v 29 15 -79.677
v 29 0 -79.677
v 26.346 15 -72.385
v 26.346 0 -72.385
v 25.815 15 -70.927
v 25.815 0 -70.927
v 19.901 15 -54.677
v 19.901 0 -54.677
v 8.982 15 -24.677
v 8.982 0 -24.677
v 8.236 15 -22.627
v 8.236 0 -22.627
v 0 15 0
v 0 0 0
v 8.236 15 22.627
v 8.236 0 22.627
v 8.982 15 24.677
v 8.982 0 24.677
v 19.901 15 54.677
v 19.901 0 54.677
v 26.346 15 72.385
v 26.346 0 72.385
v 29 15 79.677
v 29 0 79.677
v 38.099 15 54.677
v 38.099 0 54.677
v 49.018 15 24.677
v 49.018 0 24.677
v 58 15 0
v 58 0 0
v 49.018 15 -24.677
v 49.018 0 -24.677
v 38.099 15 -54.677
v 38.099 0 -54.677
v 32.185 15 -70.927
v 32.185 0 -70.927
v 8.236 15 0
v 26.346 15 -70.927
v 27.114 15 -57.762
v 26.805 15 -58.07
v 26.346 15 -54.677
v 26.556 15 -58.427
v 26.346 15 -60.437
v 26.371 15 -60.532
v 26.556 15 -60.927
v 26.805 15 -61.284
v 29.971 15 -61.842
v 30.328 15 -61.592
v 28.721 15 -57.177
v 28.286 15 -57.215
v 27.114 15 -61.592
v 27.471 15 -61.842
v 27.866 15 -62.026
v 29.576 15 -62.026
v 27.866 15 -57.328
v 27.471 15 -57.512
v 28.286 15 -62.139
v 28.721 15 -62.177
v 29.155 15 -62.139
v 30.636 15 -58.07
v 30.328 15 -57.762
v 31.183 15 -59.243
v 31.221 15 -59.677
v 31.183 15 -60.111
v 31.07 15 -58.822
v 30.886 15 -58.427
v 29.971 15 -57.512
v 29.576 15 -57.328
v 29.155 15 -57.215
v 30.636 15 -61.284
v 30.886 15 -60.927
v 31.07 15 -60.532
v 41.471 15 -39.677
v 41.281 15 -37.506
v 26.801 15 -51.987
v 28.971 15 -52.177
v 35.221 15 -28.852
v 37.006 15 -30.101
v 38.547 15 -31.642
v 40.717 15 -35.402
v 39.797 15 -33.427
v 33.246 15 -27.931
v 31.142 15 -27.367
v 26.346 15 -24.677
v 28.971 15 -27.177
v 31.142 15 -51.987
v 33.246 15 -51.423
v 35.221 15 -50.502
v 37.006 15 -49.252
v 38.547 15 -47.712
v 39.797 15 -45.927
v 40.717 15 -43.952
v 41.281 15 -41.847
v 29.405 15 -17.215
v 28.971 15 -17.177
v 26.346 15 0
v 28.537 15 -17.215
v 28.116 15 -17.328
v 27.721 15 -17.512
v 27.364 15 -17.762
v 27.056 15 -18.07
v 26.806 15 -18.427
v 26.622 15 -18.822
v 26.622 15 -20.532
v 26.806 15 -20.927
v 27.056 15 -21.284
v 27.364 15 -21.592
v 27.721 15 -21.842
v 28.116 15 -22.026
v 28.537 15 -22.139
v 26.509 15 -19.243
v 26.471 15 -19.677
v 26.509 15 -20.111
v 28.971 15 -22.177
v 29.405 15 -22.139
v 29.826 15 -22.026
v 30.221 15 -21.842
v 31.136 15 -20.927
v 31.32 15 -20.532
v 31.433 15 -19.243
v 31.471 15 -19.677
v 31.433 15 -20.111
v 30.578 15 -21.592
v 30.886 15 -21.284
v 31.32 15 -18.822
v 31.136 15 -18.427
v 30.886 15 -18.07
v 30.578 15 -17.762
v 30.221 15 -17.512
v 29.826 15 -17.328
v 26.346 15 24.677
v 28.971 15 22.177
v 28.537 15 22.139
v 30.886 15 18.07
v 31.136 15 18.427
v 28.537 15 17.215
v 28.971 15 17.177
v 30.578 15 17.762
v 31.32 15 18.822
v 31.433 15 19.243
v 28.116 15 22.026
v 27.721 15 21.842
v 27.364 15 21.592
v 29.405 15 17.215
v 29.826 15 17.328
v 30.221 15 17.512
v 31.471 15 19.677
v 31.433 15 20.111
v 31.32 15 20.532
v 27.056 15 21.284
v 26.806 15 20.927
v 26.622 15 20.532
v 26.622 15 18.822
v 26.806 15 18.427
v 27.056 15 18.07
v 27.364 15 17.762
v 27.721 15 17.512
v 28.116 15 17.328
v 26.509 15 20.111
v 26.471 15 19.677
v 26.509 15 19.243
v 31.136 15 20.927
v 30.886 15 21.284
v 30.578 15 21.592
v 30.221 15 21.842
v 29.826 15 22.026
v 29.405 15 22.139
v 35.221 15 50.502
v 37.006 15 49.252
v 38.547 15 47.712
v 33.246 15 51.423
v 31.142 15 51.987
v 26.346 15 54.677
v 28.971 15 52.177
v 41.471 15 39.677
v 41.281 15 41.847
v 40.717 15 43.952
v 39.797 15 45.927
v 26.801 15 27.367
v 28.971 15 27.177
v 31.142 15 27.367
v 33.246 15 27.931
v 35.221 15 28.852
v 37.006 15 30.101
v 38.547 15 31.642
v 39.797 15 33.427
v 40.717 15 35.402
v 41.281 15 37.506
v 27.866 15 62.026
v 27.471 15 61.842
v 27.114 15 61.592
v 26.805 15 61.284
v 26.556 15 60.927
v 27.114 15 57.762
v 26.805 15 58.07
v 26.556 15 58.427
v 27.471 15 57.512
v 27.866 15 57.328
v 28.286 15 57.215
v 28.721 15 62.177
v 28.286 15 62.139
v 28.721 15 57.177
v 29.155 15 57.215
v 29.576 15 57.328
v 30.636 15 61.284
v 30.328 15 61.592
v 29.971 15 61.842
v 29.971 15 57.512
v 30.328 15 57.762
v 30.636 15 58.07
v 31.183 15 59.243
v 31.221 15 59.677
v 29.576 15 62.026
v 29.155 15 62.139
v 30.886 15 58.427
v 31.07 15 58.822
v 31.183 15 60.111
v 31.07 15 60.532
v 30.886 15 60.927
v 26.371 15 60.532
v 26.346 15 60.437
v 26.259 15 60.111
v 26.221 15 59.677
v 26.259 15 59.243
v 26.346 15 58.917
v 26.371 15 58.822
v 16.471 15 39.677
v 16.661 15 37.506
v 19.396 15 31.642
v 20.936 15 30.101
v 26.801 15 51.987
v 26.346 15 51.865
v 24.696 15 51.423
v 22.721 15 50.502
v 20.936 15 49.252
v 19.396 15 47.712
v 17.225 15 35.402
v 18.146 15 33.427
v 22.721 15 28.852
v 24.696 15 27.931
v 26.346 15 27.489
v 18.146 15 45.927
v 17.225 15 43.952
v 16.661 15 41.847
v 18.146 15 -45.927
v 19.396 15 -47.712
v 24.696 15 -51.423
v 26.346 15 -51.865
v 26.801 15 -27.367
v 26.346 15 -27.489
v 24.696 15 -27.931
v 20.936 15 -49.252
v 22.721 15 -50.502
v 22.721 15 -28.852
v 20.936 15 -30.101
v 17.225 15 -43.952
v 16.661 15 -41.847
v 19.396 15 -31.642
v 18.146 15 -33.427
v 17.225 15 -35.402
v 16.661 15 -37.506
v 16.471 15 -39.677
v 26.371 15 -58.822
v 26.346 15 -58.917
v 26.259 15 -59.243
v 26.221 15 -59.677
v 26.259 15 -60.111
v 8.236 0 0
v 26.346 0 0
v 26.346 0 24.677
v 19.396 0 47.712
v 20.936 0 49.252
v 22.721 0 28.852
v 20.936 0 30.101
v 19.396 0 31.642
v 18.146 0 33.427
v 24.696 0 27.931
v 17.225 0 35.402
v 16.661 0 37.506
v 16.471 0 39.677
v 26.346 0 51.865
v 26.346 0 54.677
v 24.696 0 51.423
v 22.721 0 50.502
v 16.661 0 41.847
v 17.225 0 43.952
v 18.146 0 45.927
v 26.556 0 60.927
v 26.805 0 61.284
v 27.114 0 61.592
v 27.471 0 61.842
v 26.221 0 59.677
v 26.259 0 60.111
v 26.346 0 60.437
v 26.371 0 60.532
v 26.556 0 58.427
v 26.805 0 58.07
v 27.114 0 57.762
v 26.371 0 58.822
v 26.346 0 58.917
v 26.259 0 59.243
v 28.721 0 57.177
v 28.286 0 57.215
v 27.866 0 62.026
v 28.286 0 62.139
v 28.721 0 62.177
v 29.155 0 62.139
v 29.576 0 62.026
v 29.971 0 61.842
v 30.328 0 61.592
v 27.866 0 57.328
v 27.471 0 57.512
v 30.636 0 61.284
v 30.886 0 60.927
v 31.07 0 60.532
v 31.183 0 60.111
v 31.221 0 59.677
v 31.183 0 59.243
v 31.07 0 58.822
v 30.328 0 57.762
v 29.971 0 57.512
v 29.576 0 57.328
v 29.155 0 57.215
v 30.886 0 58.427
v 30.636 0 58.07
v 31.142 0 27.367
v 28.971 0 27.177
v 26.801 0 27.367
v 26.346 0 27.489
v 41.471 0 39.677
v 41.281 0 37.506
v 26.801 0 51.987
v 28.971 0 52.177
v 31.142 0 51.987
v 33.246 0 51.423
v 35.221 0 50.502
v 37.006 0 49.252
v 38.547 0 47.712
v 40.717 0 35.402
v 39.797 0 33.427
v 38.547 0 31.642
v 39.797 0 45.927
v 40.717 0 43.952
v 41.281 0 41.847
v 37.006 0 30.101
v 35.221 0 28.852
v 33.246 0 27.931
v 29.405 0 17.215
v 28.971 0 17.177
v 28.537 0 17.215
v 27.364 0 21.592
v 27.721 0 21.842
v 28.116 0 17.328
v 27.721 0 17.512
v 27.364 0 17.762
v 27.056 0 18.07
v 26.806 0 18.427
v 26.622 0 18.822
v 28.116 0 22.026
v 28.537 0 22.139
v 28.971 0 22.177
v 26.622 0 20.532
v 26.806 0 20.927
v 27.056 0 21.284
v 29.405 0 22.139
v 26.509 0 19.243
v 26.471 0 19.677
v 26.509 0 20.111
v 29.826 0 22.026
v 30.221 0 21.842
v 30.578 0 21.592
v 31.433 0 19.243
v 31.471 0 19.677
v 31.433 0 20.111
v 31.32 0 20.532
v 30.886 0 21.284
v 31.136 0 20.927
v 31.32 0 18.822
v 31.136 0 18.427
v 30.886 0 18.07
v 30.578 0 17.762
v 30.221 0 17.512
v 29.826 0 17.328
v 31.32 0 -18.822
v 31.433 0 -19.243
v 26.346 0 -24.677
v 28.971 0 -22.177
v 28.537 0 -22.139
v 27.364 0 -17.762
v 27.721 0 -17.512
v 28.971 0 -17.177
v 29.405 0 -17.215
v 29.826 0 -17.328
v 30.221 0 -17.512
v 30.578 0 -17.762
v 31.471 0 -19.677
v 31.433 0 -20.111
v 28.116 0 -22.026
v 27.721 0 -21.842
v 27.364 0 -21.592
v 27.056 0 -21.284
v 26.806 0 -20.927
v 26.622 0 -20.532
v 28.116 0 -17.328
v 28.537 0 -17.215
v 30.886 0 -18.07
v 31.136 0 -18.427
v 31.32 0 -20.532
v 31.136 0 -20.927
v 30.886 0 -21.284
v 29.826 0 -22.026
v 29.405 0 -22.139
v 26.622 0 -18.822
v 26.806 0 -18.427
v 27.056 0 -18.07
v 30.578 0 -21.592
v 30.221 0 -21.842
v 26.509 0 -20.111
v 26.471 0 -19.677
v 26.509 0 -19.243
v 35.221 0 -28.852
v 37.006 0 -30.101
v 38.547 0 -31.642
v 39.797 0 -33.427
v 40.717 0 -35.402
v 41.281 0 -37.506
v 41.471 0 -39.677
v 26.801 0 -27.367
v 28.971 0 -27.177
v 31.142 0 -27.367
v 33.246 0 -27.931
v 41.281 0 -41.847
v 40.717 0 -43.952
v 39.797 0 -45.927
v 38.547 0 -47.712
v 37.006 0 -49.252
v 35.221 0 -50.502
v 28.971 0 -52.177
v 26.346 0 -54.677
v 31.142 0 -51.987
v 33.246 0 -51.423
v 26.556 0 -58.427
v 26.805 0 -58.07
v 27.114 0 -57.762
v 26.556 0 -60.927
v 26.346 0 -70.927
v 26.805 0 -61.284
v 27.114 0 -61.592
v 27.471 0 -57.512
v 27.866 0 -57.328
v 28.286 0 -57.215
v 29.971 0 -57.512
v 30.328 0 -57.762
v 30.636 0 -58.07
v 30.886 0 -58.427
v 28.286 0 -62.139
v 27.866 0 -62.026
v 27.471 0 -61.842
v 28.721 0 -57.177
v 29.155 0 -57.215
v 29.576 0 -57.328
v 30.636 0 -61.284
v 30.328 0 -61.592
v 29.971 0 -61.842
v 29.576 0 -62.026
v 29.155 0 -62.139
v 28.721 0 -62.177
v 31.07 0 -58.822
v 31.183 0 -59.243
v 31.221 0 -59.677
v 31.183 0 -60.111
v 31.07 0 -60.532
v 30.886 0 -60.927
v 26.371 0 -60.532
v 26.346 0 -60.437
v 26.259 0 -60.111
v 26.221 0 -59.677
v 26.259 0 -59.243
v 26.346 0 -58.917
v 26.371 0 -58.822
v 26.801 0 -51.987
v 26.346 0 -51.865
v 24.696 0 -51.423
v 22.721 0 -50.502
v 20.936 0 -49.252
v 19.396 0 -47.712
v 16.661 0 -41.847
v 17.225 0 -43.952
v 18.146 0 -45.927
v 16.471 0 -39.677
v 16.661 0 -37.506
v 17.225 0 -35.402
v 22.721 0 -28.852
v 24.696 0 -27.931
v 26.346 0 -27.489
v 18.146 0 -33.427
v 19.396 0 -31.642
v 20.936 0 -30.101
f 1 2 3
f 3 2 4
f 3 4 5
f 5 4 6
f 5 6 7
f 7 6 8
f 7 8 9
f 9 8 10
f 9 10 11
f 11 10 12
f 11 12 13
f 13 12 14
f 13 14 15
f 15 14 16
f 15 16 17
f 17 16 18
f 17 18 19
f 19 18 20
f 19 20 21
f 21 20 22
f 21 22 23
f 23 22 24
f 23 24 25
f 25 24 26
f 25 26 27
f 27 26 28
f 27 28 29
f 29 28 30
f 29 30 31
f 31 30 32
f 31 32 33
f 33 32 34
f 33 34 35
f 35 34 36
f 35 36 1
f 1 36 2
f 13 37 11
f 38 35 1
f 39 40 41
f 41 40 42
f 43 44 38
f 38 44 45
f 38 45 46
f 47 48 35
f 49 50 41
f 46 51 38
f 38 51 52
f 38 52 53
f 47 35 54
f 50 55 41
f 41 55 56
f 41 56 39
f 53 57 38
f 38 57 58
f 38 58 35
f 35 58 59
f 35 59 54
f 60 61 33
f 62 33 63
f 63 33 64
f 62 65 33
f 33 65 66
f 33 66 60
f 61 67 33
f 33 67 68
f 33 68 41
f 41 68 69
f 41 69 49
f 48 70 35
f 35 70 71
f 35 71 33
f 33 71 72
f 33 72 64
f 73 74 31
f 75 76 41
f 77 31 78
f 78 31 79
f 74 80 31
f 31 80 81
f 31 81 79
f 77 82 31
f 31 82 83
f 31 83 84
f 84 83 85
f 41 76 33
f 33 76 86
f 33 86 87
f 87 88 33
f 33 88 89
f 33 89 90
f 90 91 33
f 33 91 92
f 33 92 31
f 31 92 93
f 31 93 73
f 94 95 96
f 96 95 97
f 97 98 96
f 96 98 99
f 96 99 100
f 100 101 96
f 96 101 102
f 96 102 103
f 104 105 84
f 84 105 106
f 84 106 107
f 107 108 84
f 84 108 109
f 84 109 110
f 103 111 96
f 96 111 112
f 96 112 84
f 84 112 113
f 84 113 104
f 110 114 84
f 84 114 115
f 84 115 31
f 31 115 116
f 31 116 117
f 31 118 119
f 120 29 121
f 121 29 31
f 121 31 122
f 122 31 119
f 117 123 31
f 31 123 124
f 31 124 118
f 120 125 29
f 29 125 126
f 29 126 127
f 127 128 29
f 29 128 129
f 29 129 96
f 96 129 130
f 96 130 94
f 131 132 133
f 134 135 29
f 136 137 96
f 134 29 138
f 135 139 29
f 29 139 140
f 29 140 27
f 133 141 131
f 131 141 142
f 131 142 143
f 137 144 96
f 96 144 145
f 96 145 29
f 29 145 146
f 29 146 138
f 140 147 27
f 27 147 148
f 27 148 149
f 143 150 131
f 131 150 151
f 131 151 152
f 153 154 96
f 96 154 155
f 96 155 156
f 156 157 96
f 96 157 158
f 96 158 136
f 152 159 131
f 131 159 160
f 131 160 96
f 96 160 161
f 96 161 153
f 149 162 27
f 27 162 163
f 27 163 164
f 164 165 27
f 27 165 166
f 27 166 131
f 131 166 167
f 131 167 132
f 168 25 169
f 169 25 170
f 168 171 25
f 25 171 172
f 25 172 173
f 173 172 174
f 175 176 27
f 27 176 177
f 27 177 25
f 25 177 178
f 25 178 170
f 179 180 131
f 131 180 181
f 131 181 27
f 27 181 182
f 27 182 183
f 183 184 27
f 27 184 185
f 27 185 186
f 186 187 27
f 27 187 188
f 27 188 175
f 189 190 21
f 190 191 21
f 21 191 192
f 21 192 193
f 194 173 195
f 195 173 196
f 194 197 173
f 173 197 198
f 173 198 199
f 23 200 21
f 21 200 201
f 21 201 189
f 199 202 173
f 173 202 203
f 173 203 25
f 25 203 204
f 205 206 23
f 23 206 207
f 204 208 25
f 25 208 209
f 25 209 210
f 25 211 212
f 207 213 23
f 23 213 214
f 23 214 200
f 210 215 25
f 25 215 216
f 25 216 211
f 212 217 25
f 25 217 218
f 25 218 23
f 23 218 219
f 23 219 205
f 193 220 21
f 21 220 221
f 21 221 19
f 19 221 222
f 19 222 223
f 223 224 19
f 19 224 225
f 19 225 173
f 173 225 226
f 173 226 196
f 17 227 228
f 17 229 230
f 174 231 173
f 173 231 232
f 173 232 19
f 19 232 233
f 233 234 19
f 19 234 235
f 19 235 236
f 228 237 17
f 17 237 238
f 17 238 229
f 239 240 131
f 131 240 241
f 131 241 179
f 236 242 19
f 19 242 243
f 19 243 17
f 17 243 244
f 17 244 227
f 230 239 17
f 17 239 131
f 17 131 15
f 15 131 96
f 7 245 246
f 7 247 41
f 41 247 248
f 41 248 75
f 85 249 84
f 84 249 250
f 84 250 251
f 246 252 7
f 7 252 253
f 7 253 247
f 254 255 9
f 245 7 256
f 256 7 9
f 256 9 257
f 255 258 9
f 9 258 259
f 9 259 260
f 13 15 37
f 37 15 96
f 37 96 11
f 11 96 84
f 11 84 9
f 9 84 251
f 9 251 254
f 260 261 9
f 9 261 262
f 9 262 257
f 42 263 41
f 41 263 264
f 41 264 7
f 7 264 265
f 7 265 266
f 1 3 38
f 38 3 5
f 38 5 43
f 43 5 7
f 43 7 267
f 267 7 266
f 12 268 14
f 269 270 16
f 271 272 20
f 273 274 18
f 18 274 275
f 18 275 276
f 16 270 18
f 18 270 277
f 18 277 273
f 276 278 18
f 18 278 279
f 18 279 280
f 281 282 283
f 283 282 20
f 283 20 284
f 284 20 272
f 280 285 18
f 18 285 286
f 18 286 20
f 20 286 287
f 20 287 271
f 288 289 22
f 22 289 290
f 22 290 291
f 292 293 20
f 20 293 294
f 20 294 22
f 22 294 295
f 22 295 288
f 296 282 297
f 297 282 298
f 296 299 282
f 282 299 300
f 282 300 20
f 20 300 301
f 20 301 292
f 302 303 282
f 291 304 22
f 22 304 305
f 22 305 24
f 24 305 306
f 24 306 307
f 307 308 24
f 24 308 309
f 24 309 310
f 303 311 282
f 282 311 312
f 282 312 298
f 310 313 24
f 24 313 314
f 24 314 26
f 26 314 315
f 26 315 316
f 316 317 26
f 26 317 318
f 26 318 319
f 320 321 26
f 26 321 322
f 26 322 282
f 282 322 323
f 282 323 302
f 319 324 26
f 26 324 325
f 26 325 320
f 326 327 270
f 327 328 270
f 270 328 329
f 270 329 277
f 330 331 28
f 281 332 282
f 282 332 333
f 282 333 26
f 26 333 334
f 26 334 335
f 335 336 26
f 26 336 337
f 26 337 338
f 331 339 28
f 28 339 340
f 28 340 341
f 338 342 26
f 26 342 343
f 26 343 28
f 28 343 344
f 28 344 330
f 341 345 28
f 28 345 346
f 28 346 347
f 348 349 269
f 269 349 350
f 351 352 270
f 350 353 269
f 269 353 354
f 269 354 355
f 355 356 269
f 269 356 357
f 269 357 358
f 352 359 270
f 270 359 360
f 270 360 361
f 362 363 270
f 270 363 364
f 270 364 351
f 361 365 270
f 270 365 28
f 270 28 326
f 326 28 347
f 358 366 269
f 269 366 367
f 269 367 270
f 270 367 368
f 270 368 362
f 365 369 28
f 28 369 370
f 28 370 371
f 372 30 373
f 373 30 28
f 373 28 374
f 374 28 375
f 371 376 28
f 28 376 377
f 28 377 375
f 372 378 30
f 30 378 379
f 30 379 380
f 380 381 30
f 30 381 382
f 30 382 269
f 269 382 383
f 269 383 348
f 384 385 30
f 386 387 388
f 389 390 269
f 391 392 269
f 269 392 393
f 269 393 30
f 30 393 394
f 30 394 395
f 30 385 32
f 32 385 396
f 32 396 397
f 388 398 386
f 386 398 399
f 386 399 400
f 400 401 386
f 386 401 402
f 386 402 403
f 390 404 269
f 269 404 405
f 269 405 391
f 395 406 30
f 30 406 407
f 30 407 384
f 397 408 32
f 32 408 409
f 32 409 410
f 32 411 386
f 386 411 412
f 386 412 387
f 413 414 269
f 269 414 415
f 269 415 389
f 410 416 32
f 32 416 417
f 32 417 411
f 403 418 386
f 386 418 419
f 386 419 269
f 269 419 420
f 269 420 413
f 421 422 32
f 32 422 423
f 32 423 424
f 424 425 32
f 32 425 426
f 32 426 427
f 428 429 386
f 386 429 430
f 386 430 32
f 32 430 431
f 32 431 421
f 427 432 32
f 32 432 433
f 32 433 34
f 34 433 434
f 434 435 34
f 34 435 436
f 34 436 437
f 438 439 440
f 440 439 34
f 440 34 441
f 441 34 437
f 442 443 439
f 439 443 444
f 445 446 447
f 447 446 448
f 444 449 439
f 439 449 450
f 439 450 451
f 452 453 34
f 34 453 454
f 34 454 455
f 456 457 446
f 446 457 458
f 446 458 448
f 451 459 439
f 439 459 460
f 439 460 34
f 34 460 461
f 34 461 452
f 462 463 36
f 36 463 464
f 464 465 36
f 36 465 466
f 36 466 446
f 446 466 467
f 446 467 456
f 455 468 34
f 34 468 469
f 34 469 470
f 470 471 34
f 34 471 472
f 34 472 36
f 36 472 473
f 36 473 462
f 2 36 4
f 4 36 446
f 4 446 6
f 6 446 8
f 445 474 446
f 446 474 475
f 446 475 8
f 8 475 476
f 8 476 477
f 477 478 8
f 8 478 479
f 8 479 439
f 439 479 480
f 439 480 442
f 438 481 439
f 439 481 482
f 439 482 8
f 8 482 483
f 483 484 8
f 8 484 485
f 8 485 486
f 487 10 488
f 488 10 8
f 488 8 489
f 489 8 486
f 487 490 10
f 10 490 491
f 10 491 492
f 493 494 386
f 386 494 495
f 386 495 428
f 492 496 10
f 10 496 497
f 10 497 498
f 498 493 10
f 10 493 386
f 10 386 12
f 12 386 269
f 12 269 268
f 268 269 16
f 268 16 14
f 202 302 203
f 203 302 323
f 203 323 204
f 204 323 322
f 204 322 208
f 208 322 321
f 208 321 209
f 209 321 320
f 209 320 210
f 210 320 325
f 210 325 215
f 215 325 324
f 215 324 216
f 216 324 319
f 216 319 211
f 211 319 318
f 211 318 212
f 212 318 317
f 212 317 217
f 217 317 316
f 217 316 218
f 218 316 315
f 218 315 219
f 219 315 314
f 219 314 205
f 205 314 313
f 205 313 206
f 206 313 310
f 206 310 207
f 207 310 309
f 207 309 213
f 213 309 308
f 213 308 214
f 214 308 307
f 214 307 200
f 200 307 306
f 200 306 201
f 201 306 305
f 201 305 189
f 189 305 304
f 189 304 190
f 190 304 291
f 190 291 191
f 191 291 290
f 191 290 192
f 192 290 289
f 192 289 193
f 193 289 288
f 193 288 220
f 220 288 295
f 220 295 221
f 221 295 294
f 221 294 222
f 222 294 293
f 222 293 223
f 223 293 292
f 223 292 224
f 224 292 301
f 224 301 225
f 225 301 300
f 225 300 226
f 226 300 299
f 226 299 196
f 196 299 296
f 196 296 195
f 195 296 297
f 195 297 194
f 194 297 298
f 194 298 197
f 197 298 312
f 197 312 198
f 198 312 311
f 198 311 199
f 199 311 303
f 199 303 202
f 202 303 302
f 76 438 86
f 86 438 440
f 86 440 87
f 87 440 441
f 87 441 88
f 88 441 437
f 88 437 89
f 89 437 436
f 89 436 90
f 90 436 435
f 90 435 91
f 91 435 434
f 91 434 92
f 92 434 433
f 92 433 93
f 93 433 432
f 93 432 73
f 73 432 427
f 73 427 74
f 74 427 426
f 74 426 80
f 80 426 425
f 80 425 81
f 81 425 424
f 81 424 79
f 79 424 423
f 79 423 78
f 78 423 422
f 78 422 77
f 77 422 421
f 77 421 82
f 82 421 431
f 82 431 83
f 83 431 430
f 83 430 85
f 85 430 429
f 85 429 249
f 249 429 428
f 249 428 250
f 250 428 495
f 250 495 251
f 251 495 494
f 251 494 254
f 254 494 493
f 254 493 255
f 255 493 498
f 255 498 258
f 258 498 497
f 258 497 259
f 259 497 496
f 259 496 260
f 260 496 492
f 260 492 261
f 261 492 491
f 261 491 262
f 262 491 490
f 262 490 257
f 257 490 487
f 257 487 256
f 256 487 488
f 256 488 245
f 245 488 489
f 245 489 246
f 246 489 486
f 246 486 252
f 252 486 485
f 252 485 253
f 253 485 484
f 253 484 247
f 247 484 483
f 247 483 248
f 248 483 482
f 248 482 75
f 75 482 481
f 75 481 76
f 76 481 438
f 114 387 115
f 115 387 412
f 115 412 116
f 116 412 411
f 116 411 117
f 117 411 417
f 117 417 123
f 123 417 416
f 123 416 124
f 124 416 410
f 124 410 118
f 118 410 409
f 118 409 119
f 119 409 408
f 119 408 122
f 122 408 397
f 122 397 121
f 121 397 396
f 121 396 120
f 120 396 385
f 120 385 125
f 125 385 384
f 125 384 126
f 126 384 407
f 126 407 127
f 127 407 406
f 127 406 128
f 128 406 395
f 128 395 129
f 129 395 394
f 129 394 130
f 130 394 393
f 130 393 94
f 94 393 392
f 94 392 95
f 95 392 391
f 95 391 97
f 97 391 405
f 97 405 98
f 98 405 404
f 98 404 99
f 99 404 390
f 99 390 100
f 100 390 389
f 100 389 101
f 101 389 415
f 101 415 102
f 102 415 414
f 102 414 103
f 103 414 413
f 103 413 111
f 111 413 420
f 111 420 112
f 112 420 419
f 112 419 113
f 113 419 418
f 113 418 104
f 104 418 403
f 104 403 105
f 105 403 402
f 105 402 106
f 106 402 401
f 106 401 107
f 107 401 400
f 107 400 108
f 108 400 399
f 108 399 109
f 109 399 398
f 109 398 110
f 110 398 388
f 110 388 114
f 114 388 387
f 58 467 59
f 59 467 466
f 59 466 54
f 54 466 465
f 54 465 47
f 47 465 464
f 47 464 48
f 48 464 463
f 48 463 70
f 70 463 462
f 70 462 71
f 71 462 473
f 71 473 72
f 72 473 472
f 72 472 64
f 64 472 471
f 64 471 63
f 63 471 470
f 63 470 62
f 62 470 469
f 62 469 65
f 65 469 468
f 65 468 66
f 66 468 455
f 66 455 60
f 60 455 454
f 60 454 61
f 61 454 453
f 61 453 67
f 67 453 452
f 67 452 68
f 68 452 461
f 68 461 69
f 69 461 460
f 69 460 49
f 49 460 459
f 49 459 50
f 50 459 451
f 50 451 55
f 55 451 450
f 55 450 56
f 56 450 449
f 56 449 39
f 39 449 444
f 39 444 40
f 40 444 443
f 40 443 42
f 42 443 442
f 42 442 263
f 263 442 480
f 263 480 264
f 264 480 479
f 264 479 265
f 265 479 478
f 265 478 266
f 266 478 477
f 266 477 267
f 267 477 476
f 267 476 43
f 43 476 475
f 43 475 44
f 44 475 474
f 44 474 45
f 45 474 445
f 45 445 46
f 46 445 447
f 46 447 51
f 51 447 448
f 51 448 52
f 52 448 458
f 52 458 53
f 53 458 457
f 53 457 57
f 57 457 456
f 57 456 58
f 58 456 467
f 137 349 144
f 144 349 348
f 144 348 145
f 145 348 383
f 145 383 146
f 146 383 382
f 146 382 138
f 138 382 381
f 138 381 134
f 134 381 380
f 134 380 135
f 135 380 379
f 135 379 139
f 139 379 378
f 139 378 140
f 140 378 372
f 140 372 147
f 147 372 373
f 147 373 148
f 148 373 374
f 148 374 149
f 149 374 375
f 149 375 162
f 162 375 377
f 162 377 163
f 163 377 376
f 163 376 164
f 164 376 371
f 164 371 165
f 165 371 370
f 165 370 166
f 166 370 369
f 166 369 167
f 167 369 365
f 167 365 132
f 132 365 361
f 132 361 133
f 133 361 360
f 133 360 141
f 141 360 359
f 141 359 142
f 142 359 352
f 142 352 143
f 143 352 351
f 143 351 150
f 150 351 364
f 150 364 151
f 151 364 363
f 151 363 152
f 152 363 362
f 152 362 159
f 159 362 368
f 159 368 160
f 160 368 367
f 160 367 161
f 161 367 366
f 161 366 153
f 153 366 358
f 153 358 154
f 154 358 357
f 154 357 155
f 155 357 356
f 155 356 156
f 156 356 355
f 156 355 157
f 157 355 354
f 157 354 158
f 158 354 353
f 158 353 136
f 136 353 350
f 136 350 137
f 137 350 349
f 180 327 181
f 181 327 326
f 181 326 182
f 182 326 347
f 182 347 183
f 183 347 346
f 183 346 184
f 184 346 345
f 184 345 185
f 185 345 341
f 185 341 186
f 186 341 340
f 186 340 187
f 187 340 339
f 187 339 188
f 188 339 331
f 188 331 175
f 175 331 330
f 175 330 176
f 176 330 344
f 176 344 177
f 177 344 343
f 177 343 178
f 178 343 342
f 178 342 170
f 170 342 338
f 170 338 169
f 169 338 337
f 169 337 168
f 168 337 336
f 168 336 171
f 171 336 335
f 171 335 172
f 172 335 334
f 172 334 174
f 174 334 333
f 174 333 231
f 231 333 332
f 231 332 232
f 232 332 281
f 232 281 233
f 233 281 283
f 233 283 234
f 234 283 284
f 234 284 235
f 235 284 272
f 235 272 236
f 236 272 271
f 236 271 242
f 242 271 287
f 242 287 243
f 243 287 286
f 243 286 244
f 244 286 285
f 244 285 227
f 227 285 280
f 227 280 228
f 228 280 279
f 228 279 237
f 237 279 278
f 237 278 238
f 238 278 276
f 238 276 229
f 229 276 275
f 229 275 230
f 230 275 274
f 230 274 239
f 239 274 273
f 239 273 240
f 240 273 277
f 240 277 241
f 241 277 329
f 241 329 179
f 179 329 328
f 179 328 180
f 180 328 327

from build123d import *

# Parameters (mm, degrees)
BOSS_EXTRUDE1_DEPTH = 15
SKETCH3_R           = 2.5
SKETCH3_R_2         = 12.5
CUT_EXTRUDE1_DEPTH  = 100.686506887


with BuildPart() as part:
    # Sketch1 → Boss-Extrude1 (new body)
    with BuildSketch(Plane(origin=(0, 0, 0), x_dir=(1, 0, 0), z_dir=(0, 1, 0))):
        Polygon((0, 0), (29, 79.676845164), (58, 0), align=None)
        Polygon((0, 0), (58, 0), (29, -79.676845164), align=None)
    extrude(amount=BOSS_EXTRUDE1_DEPTH)

    # Sketch3 → Cut-Extrude1 (cut, through all)
    with BuildSketch(Plane.XZ):
        with Locations(Location((28.720595315, 59.676845164, 0), (0, 0, 270))):
            Circle(SKETCH3_R)
        with Locations(Location((28.971190629, 39.676845164, 0), (0, 0, 270))):
            Circle(SKETCH3_R_2)
        with Locations(Location((28.971190629, 19.676845164, 0), (0, 0, 270))):
            Circle(SKETCH3_R)
        with Locations(Location((28.720595315, -59.676845164, 0), (0, 0, 90))):
            Circle(SKETCH3_R)
        with Locations(Location((28.971190629, -19.676845164, 0), (0, 0, 90))):
            Circle(SKETCH3_R)
        with Locations(Location((28.971190629, -39.676845164, 0), (0, 0, 90))):
            Circle(SKETCH3_R_2)
    extrude(amount=-CUT_EXTRUDE1_DEPTH, mode=Mode.SUBTRACT)


solid = part.part
